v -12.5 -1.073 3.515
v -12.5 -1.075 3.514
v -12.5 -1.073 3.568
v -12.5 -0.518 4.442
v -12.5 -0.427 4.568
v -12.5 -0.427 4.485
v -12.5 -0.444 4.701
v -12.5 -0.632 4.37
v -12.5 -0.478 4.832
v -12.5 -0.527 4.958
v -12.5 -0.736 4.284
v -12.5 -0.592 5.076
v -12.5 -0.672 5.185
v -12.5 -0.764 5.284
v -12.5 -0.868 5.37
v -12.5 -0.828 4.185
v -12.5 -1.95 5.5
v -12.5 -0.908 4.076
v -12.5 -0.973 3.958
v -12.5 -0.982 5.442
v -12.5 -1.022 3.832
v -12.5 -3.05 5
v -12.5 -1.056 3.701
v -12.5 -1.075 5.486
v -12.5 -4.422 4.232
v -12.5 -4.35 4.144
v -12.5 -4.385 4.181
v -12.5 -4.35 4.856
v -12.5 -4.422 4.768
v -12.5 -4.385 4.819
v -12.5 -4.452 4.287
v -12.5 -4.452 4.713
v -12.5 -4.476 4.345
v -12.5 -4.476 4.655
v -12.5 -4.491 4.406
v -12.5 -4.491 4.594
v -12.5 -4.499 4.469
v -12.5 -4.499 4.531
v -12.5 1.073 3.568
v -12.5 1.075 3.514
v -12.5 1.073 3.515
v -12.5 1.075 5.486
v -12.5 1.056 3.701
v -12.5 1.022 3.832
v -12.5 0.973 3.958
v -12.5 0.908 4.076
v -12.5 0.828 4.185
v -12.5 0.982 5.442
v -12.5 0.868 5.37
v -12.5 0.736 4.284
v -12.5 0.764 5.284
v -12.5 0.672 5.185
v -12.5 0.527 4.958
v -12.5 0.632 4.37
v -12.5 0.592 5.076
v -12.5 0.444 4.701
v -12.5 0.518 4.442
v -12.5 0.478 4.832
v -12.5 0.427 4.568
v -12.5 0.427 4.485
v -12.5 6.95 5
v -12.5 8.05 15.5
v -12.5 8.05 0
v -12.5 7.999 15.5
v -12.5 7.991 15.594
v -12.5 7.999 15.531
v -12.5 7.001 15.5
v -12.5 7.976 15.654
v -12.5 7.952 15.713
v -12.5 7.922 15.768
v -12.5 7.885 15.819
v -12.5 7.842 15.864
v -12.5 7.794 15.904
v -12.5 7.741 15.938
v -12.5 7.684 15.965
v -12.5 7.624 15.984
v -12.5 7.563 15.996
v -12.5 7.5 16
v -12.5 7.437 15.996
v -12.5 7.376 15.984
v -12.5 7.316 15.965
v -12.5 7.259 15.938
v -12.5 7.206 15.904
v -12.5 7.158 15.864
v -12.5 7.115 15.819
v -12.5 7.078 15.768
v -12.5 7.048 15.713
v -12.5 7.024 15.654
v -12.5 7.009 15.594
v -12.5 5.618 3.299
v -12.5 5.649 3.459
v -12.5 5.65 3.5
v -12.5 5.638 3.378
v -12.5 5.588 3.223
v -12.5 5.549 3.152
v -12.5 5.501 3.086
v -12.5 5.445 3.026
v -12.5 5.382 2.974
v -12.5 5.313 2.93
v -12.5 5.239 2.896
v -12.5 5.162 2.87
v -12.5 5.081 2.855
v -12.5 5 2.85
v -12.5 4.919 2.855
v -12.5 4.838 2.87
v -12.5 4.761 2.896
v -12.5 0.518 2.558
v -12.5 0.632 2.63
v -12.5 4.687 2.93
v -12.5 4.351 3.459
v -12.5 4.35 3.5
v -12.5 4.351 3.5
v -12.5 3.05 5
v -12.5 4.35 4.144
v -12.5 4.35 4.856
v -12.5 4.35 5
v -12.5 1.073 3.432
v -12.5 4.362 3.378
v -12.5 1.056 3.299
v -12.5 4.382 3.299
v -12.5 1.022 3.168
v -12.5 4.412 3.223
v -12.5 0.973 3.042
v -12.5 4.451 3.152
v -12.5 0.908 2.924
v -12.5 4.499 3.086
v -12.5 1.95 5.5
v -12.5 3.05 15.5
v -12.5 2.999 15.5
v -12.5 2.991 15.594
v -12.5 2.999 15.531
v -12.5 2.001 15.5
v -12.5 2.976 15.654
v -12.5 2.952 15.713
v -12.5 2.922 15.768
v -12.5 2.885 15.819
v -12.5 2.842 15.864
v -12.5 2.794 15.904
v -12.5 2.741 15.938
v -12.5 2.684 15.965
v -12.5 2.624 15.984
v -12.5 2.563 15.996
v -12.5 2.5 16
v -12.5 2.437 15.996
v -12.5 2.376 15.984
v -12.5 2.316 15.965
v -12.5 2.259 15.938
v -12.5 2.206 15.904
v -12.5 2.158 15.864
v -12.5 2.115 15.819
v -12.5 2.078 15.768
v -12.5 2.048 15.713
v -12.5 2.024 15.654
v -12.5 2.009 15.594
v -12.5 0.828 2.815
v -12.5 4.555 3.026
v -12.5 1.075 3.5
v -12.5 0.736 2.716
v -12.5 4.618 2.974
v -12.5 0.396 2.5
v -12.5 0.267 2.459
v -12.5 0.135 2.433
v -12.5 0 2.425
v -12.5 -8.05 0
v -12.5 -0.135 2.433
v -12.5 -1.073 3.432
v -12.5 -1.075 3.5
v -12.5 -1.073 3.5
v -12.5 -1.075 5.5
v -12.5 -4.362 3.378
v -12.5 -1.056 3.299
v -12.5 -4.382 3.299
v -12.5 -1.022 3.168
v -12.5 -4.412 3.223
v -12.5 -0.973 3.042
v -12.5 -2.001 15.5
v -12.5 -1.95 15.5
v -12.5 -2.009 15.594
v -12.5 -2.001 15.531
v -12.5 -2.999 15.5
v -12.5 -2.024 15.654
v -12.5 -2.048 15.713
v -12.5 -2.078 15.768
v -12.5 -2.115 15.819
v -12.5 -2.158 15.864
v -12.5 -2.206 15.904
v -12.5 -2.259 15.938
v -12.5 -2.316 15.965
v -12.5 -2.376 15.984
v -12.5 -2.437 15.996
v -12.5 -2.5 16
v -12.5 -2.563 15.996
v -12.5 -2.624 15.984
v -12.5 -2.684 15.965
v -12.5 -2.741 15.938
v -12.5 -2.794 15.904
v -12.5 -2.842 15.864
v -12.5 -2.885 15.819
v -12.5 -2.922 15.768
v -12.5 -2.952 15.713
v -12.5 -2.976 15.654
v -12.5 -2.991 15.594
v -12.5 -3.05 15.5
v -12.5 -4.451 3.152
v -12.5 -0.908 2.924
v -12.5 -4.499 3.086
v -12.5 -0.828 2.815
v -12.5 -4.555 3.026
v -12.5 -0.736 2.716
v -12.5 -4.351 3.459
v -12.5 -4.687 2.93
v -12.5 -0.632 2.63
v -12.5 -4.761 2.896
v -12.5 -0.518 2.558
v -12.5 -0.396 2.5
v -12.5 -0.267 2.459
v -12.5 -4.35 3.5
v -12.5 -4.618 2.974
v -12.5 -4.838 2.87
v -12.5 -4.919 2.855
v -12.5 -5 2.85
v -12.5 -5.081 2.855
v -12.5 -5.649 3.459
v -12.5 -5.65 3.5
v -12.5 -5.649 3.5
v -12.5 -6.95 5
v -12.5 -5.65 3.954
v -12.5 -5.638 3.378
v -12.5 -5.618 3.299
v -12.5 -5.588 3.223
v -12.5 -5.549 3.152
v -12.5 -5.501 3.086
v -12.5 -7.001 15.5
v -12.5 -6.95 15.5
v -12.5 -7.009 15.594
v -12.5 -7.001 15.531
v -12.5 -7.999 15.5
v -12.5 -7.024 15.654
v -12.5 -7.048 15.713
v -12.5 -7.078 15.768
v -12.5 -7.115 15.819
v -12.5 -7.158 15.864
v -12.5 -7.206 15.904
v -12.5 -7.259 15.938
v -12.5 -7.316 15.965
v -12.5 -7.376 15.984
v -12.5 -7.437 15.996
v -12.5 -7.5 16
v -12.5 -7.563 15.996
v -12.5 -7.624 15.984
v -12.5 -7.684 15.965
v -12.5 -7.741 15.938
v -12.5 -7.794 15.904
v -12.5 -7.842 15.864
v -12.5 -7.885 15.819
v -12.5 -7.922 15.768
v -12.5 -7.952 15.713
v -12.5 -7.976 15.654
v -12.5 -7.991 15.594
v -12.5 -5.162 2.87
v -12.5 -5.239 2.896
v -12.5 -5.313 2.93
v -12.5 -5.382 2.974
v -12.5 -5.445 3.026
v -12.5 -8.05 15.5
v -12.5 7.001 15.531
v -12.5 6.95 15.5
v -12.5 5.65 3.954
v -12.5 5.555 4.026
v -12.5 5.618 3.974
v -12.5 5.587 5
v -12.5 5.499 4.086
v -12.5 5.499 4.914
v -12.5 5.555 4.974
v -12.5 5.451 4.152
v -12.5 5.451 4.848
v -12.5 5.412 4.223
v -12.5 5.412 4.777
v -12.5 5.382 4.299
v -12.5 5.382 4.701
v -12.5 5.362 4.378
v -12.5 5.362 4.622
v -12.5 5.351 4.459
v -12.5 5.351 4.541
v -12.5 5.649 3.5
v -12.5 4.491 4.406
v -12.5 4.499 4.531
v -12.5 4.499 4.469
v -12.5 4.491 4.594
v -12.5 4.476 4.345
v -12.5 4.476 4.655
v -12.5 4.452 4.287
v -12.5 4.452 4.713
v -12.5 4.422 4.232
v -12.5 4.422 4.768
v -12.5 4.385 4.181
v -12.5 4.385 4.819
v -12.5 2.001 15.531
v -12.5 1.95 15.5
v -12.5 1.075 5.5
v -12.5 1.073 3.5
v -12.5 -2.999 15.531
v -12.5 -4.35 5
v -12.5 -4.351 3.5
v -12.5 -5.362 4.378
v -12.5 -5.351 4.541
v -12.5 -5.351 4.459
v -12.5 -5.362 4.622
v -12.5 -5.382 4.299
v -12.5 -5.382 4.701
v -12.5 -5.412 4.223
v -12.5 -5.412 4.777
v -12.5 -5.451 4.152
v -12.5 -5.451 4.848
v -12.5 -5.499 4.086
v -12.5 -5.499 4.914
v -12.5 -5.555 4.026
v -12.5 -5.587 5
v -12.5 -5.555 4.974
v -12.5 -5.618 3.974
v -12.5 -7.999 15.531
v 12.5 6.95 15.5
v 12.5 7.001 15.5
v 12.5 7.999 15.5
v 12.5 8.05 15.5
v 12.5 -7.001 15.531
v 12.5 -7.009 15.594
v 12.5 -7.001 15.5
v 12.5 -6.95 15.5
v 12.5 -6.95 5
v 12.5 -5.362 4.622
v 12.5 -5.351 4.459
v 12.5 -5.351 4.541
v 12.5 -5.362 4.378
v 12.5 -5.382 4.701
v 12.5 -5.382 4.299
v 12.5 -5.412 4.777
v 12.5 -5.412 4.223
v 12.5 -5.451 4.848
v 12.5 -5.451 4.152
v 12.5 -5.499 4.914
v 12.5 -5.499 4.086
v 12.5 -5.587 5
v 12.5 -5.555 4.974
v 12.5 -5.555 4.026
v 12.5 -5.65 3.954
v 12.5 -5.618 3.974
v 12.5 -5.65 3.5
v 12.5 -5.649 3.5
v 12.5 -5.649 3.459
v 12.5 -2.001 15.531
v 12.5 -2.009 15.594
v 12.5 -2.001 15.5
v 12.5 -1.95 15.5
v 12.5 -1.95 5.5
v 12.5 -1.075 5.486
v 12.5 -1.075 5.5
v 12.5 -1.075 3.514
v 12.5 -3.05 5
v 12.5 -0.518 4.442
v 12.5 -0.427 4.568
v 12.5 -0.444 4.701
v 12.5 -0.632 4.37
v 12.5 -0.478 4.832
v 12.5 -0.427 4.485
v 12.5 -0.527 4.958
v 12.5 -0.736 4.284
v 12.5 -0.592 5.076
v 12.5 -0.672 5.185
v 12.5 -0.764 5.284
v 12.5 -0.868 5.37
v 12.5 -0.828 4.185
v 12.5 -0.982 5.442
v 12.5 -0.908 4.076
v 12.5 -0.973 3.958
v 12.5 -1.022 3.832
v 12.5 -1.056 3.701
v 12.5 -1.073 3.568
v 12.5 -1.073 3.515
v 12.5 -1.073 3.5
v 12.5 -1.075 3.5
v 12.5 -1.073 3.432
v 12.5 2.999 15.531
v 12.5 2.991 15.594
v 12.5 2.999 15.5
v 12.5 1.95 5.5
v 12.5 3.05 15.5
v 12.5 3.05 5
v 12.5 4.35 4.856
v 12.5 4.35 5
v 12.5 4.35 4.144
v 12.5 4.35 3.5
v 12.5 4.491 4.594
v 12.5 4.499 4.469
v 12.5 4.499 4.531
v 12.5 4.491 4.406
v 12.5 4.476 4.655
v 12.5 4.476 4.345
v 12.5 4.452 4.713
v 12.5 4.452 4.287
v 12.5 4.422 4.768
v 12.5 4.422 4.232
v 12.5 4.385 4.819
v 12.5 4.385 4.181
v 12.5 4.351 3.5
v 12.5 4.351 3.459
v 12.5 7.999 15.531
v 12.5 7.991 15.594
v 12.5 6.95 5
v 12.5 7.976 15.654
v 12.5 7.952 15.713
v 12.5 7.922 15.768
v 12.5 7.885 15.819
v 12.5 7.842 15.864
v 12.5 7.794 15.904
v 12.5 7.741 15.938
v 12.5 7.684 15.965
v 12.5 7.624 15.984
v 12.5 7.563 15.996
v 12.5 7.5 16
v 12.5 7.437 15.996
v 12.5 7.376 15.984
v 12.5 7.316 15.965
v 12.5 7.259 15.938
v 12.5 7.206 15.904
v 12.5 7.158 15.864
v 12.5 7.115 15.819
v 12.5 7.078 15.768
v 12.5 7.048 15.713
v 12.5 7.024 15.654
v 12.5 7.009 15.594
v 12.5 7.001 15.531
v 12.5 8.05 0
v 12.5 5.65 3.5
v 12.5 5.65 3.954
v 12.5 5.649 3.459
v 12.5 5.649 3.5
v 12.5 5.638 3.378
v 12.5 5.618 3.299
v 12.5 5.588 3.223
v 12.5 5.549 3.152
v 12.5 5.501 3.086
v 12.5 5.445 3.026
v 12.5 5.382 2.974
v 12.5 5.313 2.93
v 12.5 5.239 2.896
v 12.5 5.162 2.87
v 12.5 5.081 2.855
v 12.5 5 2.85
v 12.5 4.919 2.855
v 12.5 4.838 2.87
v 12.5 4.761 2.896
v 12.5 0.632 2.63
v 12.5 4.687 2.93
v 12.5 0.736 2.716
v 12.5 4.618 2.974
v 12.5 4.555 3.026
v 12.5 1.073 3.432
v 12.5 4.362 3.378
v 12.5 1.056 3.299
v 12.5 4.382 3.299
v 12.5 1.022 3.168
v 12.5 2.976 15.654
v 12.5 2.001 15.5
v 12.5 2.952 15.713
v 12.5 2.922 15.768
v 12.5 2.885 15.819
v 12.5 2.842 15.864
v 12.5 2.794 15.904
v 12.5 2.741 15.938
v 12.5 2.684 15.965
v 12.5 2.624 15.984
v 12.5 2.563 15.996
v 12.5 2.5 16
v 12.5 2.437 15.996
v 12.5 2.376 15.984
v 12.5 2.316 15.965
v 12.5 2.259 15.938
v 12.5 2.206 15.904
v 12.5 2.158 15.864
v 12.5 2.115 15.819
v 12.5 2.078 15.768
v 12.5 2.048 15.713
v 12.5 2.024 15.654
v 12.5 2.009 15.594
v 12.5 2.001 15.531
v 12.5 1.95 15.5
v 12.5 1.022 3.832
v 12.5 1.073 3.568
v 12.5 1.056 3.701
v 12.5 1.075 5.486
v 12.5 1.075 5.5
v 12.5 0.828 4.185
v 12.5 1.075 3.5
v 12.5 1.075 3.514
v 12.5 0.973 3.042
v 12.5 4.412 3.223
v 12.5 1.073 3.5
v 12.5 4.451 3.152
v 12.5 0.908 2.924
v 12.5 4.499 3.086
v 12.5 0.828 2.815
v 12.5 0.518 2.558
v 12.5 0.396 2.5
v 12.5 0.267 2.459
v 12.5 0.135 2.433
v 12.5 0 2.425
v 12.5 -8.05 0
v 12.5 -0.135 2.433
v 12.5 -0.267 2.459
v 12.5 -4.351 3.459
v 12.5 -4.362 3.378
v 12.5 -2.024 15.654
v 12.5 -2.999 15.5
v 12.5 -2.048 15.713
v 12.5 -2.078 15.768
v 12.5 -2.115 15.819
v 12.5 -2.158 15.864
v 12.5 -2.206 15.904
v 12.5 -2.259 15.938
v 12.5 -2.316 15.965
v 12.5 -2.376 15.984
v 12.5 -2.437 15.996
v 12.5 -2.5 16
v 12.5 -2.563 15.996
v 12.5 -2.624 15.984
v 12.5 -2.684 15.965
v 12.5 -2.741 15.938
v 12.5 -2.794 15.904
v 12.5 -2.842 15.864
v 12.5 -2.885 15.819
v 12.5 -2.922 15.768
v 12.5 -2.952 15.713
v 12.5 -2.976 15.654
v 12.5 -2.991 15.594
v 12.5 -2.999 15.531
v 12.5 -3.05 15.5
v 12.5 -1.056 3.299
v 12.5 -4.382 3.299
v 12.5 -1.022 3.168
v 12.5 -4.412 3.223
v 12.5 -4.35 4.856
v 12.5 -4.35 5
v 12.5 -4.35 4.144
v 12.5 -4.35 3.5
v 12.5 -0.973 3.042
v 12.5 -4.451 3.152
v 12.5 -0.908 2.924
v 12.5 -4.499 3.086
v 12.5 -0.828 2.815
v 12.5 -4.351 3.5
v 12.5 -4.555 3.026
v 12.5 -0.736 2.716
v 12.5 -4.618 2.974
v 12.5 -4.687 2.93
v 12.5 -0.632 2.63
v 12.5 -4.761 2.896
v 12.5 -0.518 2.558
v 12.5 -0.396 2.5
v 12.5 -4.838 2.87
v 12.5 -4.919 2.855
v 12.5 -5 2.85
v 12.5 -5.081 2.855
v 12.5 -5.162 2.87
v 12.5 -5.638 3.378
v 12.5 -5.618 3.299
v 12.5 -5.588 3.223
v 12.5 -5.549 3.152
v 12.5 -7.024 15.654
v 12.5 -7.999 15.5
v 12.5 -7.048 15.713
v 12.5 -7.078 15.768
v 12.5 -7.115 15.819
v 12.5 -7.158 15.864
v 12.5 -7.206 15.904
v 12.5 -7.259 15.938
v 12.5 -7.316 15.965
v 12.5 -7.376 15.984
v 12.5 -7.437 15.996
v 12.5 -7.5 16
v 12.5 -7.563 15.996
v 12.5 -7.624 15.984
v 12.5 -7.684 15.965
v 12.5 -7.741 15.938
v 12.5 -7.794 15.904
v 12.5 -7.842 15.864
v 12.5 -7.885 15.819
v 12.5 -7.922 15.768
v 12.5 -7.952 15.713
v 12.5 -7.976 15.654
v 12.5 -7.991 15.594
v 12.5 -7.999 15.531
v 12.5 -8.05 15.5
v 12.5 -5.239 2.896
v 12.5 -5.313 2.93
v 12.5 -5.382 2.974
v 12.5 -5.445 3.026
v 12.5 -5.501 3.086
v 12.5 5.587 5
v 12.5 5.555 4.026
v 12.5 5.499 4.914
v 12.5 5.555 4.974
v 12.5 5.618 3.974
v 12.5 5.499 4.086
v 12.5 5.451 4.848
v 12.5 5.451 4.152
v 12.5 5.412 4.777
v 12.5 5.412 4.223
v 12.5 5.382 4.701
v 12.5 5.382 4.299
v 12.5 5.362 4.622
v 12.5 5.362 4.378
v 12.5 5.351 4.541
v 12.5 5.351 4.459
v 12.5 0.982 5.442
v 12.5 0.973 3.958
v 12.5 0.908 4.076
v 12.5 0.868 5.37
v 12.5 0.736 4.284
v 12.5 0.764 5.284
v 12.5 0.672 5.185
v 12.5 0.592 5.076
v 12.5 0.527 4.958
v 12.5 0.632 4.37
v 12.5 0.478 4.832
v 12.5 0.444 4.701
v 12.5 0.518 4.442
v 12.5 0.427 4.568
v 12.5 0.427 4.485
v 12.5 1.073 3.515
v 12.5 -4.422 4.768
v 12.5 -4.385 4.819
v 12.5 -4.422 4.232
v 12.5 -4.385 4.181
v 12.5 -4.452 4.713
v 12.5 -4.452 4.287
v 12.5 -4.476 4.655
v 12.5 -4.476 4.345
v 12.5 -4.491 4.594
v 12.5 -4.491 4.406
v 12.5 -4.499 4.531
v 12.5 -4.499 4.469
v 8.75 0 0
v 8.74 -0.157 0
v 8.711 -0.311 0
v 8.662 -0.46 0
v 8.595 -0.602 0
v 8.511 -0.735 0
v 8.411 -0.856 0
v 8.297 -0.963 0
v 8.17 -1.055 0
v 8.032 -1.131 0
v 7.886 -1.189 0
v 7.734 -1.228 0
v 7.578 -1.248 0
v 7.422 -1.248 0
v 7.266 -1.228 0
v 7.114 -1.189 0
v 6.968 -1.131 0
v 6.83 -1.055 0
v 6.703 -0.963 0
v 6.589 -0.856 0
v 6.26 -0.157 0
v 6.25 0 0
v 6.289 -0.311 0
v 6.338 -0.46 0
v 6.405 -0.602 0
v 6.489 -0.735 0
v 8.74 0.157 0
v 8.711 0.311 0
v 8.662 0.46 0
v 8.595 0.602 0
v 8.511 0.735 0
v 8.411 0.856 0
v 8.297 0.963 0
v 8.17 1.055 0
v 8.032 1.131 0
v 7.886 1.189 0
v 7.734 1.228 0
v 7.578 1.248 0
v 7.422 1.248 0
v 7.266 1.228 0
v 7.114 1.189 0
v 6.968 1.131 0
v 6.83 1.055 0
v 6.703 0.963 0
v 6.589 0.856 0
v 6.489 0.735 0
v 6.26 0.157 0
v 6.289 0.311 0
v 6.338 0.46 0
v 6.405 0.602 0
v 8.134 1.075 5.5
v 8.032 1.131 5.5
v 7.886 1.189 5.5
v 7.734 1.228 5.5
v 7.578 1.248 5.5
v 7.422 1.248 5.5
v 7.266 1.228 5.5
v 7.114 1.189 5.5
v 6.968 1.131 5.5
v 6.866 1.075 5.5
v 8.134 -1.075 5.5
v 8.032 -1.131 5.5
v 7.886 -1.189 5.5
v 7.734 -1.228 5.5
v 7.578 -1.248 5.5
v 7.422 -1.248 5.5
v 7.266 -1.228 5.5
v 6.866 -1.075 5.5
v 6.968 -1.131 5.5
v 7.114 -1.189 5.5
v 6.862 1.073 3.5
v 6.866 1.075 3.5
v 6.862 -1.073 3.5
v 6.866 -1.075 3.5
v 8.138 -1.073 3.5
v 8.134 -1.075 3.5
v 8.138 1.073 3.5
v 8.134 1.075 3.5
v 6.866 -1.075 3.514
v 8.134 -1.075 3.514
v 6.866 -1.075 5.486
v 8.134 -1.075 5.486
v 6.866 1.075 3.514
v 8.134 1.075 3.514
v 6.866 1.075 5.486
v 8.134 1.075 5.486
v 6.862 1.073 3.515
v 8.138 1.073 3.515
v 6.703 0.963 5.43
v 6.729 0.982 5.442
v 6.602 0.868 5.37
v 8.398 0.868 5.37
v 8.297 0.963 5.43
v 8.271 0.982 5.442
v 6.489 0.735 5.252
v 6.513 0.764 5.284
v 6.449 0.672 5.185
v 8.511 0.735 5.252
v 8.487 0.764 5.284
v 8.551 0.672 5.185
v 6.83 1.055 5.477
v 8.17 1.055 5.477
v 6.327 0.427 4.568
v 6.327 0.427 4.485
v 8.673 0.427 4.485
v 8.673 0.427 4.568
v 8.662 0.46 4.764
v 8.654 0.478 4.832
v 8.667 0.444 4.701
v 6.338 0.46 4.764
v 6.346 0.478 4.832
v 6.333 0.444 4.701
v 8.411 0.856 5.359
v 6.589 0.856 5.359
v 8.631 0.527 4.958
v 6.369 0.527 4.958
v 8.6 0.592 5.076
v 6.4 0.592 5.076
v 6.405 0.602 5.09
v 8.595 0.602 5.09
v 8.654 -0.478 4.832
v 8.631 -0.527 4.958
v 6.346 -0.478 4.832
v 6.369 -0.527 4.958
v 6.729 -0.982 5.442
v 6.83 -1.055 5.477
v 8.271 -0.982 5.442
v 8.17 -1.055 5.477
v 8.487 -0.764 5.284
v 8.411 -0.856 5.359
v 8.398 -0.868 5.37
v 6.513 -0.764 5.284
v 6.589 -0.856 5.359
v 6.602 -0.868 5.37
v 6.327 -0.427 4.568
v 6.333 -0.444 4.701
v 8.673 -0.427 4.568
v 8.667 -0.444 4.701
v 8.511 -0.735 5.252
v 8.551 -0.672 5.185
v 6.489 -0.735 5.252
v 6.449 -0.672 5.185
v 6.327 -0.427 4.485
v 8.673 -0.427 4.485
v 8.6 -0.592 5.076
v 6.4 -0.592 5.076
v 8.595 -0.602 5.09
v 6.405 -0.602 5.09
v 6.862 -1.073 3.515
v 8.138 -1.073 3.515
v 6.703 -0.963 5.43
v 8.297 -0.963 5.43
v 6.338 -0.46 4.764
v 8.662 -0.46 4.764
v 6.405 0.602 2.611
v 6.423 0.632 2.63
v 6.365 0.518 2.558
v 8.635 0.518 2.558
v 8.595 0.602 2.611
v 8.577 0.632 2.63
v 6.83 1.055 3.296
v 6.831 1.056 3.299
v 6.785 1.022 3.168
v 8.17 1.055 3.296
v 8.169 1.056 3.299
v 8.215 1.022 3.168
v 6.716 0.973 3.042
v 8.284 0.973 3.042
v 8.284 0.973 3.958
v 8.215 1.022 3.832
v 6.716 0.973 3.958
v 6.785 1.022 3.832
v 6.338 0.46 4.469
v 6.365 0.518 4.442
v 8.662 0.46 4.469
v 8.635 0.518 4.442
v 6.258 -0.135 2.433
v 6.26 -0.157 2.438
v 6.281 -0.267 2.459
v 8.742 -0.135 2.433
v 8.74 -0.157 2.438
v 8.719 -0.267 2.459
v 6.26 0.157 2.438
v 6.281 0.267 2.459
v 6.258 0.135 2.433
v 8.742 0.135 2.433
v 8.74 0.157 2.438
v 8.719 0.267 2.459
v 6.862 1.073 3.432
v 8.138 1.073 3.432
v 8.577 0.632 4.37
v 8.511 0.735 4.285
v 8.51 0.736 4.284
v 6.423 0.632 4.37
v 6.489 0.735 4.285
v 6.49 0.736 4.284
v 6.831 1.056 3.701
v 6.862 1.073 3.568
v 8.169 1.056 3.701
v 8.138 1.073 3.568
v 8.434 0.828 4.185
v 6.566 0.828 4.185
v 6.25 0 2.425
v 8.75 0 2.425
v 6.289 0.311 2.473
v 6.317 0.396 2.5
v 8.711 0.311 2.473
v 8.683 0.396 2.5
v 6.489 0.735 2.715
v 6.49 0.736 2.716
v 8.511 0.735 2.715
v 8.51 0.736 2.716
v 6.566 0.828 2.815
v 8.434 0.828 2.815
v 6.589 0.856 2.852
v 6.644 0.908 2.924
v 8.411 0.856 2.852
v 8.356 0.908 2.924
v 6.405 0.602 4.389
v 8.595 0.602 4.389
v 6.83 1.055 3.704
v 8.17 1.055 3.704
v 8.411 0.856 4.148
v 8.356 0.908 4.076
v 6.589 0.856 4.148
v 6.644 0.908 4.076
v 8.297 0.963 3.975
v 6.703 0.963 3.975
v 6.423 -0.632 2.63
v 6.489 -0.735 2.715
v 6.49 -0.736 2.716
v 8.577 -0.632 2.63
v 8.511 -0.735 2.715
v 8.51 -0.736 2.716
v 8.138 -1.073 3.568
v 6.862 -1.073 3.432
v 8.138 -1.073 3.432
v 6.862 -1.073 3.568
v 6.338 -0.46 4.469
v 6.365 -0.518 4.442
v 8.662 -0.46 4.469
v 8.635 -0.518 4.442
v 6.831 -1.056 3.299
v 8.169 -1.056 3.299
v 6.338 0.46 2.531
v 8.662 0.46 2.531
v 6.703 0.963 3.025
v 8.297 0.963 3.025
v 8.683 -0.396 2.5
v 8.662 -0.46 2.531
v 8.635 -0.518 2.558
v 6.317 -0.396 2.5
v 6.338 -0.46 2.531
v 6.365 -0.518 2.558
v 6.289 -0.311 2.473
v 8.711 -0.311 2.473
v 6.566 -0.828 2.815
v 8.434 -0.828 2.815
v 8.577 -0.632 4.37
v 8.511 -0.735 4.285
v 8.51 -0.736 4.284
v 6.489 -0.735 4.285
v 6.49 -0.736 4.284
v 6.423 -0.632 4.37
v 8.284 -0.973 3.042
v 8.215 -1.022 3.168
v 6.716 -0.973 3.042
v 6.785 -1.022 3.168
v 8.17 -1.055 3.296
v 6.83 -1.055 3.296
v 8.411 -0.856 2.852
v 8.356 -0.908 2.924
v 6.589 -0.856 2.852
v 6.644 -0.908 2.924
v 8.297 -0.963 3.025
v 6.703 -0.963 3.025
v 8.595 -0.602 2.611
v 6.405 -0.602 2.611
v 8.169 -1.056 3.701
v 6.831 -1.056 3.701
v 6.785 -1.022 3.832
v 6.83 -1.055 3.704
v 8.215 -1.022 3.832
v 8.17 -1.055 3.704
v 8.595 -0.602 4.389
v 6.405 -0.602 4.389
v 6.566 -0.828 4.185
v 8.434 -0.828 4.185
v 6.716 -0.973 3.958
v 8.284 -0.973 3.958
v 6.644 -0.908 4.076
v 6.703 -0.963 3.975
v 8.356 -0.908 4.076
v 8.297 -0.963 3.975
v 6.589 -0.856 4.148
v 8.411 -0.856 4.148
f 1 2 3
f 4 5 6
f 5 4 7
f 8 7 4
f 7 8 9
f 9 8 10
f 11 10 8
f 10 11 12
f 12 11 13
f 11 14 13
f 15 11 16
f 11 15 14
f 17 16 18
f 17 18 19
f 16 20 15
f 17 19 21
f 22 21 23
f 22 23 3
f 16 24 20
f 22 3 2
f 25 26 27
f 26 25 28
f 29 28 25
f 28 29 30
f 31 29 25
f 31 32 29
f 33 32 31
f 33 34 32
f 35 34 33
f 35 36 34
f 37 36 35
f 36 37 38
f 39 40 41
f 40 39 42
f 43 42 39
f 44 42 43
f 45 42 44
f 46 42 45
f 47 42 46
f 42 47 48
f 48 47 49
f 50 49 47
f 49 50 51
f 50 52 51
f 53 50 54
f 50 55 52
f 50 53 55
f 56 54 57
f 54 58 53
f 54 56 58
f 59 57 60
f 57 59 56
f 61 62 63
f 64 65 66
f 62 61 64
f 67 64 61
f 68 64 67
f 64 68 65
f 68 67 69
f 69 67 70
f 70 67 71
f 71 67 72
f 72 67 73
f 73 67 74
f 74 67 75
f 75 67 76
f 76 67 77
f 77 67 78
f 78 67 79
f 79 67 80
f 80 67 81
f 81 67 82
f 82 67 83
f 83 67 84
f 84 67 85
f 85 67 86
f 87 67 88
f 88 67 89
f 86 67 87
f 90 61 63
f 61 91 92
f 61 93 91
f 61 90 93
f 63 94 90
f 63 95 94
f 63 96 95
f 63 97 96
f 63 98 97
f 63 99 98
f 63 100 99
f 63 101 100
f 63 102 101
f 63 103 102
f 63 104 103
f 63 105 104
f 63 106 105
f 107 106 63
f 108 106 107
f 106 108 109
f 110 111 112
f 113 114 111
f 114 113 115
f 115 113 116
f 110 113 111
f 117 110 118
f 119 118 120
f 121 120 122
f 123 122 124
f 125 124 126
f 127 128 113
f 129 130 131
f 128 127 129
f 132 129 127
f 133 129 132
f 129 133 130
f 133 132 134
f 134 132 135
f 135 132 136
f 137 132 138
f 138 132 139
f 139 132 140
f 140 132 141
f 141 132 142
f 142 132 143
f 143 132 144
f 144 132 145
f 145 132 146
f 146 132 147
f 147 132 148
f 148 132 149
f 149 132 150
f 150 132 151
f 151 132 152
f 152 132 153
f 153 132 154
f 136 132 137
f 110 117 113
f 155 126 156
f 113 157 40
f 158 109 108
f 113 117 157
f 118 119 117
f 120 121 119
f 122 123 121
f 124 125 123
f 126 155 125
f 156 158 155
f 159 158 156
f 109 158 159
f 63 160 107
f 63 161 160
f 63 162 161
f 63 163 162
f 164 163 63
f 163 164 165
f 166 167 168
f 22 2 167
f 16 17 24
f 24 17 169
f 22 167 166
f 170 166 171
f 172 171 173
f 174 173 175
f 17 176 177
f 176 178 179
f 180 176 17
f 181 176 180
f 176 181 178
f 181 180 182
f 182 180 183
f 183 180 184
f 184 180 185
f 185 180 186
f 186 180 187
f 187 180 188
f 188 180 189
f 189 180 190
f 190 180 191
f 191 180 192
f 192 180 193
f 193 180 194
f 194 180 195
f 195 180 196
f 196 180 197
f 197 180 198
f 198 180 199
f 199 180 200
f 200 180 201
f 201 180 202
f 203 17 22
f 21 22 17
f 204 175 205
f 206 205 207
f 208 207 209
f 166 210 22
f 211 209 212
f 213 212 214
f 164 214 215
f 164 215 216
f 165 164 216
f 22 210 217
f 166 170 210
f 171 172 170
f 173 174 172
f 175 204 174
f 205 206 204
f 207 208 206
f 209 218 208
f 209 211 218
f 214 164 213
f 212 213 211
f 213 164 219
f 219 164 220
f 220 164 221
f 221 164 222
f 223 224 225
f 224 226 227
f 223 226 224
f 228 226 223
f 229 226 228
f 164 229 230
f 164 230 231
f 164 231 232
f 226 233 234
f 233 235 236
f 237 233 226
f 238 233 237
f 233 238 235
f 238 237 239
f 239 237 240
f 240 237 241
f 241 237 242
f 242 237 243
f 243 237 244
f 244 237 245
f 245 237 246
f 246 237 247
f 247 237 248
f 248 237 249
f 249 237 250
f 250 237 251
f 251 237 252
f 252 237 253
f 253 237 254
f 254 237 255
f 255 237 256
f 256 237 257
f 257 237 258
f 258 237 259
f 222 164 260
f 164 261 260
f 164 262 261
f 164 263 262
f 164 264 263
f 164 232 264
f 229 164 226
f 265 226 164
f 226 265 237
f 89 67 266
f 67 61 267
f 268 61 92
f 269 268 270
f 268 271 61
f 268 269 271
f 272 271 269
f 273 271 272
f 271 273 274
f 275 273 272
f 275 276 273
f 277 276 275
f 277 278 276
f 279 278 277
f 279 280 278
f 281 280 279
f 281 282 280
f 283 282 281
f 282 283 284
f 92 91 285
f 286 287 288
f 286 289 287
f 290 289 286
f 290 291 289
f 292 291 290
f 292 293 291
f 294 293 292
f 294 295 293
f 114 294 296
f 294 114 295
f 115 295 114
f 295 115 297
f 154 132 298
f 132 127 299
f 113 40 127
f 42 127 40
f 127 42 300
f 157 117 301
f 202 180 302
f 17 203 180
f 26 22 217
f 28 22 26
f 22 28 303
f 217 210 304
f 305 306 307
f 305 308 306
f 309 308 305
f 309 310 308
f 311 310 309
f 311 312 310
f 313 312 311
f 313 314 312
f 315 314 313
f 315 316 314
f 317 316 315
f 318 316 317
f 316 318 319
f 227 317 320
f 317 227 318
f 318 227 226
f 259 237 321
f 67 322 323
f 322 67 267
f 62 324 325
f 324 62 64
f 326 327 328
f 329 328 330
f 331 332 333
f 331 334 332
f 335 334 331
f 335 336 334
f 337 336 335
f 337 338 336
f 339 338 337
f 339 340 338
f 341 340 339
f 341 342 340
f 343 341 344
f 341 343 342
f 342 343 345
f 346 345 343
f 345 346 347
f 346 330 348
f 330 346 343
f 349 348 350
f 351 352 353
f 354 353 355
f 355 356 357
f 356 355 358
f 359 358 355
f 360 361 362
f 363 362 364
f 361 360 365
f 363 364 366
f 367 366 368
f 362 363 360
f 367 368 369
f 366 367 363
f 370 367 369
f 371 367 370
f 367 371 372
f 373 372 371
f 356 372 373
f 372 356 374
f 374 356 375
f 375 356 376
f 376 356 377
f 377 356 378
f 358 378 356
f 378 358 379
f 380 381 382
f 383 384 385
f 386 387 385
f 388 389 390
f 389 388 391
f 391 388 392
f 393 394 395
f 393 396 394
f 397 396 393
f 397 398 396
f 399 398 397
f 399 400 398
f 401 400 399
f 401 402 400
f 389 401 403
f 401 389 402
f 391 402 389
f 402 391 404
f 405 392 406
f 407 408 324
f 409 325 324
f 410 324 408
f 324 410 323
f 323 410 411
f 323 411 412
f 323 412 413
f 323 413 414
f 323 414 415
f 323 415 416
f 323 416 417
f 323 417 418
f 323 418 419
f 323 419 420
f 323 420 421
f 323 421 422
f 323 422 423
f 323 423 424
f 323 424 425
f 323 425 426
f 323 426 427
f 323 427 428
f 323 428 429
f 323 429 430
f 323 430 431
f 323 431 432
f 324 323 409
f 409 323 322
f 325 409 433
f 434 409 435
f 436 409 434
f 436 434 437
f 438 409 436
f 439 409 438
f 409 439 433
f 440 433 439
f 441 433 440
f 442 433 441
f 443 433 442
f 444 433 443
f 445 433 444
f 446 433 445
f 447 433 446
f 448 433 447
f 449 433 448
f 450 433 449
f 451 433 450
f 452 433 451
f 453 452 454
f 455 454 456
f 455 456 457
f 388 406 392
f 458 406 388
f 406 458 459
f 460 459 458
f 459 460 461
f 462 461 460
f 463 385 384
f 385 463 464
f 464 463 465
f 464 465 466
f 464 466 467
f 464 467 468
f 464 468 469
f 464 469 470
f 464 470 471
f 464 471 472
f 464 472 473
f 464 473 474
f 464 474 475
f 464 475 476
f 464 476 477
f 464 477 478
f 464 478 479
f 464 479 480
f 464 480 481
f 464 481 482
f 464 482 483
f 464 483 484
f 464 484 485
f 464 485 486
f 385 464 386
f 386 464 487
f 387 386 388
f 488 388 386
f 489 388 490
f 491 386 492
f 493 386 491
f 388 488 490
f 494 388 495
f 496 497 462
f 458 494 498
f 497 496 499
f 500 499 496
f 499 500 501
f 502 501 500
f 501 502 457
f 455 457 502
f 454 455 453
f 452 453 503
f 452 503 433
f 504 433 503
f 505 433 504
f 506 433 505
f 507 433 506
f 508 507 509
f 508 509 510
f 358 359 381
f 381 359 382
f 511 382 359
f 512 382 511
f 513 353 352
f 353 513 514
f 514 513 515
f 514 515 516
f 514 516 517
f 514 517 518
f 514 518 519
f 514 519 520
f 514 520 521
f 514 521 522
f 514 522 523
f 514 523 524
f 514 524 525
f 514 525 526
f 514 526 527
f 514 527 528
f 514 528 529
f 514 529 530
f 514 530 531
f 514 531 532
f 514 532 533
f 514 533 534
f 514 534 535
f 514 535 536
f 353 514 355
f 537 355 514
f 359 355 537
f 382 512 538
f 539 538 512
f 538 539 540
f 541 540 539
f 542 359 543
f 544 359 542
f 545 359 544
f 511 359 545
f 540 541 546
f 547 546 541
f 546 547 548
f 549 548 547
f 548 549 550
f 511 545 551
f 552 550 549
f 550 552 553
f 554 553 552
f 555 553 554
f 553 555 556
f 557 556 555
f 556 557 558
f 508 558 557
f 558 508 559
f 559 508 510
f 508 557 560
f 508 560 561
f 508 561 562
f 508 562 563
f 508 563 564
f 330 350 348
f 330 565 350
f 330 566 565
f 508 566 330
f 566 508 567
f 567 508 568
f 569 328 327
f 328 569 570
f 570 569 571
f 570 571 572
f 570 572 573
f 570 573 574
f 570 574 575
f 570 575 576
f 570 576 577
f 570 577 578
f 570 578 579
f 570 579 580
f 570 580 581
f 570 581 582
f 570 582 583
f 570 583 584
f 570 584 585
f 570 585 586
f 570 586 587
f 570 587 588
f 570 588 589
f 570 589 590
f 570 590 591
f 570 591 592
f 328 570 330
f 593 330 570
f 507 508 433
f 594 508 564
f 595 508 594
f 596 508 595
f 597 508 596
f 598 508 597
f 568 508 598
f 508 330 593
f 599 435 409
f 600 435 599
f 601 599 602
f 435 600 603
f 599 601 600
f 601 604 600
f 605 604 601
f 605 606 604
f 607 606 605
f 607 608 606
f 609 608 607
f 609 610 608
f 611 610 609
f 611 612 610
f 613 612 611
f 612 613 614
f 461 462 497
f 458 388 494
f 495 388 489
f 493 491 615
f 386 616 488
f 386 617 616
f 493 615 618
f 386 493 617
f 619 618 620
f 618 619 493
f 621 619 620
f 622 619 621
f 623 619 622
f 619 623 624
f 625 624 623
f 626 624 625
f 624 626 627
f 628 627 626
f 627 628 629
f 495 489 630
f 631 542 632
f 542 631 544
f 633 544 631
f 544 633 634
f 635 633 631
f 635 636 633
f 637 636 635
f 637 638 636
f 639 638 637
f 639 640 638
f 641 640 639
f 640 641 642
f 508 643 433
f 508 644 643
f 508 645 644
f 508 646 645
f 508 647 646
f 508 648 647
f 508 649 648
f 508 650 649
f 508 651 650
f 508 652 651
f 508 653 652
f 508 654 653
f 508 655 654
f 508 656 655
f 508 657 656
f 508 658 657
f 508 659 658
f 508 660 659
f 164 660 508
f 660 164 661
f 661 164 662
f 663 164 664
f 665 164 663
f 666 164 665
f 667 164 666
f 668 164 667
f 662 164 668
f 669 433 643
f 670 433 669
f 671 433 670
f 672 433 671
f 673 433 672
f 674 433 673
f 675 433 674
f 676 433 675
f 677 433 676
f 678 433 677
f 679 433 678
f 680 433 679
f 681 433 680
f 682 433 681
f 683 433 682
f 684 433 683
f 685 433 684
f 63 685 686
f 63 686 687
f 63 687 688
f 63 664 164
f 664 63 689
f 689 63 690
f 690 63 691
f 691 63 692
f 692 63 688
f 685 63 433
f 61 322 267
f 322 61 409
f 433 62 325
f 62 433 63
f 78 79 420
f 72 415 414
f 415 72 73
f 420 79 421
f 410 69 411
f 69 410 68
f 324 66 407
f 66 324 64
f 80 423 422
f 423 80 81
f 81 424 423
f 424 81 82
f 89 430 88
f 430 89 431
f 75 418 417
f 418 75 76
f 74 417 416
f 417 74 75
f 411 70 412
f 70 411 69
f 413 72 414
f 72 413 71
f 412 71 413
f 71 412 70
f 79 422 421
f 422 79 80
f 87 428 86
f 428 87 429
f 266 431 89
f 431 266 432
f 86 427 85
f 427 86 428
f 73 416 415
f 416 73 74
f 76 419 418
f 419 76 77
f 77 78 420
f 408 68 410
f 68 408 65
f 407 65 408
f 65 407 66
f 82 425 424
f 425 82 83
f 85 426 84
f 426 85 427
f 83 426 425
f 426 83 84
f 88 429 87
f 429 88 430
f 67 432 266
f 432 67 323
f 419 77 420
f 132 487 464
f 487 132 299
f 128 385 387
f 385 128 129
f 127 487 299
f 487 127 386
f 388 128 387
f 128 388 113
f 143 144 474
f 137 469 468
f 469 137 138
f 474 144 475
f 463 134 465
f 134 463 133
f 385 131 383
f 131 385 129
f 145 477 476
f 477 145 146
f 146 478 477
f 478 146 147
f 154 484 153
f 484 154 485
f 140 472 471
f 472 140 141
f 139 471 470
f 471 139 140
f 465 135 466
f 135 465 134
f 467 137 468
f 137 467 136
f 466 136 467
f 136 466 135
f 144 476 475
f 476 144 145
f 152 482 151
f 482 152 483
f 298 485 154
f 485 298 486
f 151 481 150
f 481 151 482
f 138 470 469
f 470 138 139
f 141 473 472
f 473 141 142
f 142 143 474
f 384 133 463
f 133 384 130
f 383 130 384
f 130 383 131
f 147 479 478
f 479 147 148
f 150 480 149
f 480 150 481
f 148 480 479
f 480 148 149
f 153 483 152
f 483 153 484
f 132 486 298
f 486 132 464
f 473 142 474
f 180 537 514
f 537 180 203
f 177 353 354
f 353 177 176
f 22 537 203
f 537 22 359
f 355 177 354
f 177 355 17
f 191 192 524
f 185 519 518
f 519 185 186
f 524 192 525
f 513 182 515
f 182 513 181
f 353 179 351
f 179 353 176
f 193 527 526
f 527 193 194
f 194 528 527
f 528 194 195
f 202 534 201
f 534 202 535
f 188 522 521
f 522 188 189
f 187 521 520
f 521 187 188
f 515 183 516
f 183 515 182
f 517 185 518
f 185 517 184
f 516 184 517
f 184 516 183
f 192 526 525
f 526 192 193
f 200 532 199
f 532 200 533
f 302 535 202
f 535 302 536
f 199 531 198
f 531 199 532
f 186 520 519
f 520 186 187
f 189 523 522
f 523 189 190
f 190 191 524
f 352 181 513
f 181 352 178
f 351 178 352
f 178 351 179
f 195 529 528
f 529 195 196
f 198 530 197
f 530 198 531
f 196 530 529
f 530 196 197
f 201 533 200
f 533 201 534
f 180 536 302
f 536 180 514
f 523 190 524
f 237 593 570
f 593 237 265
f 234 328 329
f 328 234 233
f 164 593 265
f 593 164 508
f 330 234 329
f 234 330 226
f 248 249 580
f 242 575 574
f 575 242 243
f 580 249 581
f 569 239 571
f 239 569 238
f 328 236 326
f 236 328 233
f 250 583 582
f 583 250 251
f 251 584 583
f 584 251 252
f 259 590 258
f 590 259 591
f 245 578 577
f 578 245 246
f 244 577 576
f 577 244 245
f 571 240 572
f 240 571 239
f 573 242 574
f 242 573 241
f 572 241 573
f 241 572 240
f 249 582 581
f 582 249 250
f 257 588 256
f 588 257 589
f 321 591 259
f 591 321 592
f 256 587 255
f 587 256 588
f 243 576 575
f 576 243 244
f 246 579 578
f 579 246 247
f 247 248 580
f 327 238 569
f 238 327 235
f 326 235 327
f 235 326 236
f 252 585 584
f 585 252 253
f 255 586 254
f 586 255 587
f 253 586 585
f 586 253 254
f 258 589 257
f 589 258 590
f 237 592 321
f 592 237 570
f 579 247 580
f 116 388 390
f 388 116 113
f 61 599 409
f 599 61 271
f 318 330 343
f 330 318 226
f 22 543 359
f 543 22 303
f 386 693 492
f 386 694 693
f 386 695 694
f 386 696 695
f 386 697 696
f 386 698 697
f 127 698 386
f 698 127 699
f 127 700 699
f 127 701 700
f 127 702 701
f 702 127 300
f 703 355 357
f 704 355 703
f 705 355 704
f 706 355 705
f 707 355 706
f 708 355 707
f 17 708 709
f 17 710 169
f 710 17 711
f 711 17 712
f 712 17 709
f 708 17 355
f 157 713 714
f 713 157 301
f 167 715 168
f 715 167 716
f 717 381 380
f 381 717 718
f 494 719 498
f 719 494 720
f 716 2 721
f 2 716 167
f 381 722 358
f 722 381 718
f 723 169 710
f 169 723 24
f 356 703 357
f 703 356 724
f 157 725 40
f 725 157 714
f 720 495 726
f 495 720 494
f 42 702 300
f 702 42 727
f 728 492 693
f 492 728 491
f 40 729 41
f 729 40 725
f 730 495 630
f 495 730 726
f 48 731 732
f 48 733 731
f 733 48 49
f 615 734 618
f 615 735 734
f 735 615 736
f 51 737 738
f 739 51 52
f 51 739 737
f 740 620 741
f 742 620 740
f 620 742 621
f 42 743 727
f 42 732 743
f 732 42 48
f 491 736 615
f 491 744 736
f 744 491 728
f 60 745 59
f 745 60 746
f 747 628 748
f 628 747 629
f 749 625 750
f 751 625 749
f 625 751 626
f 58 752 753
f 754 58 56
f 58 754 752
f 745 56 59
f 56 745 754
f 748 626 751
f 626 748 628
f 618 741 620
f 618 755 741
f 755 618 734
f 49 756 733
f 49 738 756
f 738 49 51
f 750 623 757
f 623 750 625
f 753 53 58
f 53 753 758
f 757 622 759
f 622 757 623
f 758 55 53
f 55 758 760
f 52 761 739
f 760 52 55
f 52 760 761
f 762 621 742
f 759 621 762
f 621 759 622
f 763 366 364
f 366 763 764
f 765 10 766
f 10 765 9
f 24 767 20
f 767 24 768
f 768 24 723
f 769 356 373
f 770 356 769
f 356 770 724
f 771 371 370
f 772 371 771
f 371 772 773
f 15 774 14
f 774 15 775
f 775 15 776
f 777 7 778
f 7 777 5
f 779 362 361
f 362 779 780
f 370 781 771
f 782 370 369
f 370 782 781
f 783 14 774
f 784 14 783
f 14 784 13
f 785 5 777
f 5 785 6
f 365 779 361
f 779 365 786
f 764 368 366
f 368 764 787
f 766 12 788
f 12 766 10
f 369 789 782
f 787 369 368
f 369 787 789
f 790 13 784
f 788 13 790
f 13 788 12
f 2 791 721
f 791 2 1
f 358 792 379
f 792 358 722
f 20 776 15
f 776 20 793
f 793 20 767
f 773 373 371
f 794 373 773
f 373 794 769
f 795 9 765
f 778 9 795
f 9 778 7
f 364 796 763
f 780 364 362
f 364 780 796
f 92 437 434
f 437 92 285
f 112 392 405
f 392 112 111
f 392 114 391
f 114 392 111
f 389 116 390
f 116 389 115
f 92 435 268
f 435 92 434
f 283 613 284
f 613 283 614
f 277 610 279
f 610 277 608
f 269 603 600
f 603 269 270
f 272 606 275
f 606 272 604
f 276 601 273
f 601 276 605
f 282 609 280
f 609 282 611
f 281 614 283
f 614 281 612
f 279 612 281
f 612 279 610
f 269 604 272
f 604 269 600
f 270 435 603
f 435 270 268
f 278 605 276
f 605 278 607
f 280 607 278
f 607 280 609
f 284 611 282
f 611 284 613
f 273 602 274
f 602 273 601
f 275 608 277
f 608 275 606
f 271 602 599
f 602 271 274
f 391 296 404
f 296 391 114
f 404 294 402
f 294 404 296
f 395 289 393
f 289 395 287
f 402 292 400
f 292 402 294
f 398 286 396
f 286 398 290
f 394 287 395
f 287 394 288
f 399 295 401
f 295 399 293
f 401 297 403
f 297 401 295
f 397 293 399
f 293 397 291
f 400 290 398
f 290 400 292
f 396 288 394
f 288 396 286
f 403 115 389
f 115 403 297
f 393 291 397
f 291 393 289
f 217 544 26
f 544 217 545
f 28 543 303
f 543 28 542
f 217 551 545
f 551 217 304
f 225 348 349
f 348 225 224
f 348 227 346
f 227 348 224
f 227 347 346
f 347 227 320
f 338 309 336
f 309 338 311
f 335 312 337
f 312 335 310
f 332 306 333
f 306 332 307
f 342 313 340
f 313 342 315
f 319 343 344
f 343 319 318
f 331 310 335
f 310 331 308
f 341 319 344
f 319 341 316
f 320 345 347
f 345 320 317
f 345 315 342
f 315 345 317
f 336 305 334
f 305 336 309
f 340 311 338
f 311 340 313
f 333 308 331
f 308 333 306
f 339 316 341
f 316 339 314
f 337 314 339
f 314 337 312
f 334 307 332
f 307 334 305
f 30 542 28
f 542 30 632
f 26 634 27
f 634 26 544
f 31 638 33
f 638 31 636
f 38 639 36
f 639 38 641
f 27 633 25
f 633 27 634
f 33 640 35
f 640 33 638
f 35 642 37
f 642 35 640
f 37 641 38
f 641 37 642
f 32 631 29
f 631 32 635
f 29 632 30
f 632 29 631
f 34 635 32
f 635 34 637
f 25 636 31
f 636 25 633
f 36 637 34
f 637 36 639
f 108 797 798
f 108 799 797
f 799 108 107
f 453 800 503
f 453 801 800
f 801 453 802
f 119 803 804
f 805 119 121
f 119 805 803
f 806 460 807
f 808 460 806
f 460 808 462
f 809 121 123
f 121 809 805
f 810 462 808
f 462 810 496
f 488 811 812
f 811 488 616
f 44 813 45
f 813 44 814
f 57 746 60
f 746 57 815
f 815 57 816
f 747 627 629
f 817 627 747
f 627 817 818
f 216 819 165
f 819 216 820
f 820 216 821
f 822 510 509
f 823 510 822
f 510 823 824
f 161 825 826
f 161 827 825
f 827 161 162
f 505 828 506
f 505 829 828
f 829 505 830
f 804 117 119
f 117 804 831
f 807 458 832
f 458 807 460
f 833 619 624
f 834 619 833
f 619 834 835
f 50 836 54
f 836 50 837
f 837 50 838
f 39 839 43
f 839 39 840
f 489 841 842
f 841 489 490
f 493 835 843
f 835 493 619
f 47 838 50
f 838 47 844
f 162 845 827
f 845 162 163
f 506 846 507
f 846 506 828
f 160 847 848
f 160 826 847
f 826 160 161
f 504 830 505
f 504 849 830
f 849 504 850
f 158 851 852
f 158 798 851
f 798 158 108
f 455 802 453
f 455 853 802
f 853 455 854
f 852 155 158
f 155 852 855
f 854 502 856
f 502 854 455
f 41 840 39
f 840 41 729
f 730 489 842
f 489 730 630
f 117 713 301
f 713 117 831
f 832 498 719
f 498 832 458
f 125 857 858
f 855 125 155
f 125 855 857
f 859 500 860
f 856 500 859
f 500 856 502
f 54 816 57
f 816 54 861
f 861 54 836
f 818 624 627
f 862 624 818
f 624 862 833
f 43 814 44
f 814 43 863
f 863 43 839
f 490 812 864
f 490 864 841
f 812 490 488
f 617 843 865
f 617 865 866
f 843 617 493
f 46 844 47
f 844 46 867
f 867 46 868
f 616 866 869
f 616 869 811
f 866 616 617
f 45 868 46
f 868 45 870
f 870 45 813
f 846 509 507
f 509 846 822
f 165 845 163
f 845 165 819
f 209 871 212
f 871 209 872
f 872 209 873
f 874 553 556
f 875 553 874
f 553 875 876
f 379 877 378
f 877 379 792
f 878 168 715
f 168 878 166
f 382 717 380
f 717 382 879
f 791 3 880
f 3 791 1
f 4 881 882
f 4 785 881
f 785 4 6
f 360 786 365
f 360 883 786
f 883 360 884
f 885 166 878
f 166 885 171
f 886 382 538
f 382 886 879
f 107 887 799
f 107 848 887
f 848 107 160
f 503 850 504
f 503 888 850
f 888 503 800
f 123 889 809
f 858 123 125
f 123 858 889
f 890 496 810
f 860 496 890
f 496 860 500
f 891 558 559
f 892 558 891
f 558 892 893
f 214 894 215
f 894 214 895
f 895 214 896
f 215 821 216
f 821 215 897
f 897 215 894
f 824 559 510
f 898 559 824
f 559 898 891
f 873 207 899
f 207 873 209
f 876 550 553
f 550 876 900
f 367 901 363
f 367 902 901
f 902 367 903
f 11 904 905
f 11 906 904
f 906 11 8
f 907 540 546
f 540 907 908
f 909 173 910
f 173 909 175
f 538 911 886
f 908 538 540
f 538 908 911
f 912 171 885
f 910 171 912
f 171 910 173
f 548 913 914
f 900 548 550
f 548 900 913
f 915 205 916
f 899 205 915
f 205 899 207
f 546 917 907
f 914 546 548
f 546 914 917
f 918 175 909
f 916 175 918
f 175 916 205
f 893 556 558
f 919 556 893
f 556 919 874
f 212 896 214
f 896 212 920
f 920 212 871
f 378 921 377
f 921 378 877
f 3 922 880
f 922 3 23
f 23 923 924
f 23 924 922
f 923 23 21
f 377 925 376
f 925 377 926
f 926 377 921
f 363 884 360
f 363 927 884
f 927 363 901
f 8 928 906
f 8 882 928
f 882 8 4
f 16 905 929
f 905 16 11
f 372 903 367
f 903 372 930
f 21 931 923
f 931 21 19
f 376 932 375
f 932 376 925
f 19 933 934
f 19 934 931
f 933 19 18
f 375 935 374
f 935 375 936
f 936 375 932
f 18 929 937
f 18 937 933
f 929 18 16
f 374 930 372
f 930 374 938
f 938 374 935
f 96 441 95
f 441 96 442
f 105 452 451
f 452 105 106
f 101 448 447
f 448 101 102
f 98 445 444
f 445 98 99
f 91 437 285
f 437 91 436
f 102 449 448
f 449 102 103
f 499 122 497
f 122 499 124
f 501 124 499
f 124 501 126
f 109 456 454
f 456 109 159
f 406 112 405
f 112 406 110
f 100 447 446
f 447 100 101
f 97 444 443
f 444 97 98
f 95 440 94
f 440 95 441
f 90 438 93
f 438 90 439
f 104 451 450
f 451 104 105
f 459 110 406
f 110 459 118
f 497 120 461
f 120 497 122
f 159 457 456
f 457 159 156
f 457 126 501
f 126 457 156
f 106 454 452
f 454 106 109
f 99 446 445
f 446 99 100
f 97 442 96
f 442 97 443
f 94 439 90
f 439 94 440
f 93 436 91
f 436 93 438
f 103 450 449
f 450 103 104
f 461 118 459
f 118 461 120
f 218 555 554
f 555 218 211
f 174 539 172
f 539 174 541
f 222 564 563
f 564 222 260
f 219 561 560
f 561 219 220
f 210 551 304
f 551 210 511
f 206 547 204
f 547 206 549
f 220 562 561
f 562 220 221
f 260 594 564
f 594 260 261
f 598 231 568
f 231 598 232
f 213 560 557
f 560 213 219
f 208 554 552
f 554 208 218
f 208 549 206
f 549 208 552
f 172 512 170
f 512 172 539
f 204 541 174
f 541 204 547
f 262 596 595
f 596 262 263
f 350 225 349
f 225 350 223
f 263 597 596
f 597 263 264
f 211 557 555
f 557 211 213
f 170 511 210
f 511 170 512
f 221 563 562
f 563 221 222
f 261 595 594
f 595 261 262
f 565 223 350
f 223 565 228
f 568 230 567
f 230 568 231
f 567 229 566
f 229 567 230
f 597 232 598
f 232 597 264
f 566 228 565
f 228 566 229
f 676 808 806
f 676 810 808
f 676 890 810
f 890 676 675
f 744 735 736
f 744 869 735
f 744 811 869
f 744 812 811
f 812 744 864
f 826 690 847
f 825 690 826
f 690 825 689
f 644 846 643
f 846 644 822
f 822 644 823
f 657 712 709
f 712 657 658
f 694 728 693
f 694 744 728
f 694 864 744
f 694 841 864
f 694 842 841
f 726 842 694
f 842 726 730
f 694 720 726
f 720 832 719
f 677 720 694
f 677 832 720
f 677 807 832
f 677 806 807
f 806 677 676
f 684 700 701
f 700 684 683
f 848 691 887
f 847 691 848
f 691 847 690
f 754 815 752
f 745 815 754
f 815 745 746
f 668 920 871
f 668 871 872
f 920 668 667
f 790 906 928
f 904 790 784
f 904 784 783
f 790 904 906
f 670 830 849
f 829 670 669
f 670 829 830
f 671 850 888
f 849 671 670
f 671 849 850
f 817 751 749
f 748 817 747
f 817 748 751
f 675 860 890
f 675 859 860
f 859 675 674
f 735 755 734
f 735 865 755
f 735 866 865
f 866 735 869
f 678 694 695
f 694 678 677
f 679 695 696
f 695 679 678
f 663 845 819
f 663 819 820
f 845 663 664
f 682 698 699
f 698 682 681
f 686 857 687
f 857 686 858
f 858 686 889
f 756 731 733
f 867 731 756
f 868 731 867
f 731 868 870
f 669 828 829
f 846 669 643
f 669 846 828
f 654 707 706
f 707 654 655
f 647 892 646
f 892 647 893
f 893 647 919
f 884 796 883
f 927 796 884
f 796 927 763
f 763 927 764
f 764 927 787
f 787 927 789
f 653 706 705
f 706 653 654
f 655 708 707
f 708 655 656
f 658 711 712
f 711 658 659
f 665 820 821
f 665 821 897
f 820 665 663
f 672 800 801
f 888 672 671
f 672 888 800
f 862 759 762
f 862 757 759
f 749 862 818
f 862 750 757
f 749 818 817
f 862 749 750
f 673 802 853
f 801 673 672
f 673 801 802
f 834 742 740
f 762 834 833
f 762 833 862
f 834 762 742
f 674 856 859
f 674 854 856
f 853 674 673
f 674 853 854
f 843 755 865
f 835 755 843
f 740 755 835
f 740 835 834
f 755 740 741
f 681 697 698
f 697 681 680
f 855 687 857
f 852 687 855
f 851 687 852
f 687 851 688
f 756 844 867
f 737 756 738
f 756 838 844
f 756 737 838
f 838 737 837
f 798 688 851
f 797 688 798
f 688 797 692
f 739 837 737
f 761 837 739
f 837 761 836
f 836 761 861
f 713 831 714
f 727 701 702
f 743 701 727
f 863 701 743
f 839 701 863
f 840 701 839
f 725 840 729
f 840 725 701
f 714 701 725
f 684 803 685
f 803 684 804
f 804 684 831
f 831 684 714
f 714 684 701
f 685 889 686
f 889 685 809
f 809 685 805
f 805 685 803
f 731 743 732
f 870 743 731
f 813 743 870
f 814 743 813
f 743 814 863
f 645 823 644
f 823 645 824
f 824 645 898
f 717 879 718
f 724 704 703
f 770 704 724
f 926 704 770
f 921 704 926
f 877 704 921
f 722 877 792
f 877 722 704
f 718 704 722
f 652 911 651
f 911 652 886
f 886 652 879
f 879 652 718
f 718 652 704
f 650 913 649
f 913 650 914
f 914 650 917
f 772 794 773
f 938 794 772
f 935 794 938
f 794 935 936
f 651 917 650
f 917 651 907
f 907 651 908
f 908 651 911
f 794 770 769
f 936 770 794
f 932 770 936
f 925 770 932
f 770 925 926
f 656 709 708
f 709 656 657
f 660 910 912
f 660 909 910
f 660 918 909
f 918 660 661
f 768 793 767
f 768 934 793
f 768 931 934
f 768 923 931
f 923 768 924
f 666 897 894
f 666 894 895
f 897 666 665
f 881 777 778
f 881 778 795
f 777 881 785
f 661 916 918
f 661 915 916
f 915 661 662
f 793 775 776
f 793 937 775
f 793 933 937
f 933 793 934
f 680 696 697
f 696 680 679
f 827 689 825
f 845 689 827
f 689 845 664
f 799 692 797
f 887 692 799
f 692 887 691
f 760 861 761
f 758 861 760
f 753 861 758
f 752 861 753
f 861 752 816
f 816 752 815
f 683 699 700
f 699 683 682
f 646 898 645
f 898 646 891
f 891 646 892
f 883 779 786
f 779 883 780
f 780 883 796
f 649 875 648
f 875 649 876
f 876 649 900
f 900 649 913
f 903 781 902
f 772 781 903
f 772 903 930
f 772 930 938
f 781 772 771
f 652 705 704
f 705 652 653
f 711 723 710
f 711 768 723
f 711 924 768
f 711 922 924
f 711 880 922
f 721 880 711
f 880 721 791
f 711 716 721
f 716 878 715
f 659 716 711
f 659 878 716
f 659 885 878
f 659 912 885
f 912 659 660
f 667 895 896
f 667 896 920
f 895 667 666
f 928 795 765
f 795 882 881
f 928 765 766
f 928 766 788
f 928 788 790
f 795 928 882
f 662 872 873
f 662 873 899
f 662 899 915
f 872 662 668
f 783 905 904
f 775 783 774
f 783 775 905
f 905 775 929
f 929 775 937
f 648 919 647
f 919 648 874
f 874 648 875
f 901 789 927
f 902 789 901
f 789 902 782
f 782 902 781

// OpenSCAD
$fn=50;

L = 25;         // V7700W
//L = 37.5;       // V7700X

difference () {
    union() {    
        // main body
        translate ([0,0,2.5]) cube ([L,16,5],center=true);
        translate ([0,0,2.75]) cube ([L,5,5.5],center=true);
        // fins
        translate ([0,7.5,0]) fin ();
        translate ([0,2.5,0]) fin ();
        translate ([0,-2.5,0]) fin ();
        translate ([0,-7.5,0]) fin ();       
    }
    grooves();
    translate ([20+L/-2,0,0]) cylinder (d=2.5,h=100,center=true);
}

 
module fin(){
    // rectangle
    union(){
        translate ([L/-2,-0.55,0]) cube ([L,1.1,15.5]);
        translate ([0,0,15.5]) rotate ([0,90,0]) cylinder (r=0.5,h=L,center = true);
    }
}

module grooves(){
    translate ([0,0,3.5]) rotate ([0,90,0]) cylinder (d=2.15,h=L,center=true); 
    translate ([0,5,3.5]) rotate ([0,90,0]) cylinder (d=1.3,h=L,center=true); 
    translate ([0,-5,3.5]) rotate ([0,90,0]) cylinder (d=1.3,h=L,center=true);
    difference () {
        translate ([0,0,6]) cube ([L,2.15,5],center=true);
        translate ([0,1.5,4.5]) rotate ([0,90,0]) cylinder (d=2.15,h=L,center=true); 
        translate ([0,-1.5,4.5]) rotate ([0,90,0]) cylinder (d=2.15,h=L,center=true); 
    }
    difference () {
        translate ([0,5,6]) cube ([L,1.3,5],center=true);
        translate ([0,6,4.5]) rotate ([0,90,0]) cylinder (d=1.3,h=L,center=true); 
        translate ([0,4,4.5]) rotate ([0,90,0]) cylinder (d=1,3,h=L,center=true); 
    }
    difference () {
        translate ([0,-5,6]) cube ([L,1.3,5],center=true);
        translate ([0,-6,4.5]) rotate ([0,90,0]) cylinder (d=1.3,h=L,center=true); 
        translate ([0,-4,4.5]) rotate ([0,90,0]) cylinder (d=1,3,h=L,center=true); 
    }
}
